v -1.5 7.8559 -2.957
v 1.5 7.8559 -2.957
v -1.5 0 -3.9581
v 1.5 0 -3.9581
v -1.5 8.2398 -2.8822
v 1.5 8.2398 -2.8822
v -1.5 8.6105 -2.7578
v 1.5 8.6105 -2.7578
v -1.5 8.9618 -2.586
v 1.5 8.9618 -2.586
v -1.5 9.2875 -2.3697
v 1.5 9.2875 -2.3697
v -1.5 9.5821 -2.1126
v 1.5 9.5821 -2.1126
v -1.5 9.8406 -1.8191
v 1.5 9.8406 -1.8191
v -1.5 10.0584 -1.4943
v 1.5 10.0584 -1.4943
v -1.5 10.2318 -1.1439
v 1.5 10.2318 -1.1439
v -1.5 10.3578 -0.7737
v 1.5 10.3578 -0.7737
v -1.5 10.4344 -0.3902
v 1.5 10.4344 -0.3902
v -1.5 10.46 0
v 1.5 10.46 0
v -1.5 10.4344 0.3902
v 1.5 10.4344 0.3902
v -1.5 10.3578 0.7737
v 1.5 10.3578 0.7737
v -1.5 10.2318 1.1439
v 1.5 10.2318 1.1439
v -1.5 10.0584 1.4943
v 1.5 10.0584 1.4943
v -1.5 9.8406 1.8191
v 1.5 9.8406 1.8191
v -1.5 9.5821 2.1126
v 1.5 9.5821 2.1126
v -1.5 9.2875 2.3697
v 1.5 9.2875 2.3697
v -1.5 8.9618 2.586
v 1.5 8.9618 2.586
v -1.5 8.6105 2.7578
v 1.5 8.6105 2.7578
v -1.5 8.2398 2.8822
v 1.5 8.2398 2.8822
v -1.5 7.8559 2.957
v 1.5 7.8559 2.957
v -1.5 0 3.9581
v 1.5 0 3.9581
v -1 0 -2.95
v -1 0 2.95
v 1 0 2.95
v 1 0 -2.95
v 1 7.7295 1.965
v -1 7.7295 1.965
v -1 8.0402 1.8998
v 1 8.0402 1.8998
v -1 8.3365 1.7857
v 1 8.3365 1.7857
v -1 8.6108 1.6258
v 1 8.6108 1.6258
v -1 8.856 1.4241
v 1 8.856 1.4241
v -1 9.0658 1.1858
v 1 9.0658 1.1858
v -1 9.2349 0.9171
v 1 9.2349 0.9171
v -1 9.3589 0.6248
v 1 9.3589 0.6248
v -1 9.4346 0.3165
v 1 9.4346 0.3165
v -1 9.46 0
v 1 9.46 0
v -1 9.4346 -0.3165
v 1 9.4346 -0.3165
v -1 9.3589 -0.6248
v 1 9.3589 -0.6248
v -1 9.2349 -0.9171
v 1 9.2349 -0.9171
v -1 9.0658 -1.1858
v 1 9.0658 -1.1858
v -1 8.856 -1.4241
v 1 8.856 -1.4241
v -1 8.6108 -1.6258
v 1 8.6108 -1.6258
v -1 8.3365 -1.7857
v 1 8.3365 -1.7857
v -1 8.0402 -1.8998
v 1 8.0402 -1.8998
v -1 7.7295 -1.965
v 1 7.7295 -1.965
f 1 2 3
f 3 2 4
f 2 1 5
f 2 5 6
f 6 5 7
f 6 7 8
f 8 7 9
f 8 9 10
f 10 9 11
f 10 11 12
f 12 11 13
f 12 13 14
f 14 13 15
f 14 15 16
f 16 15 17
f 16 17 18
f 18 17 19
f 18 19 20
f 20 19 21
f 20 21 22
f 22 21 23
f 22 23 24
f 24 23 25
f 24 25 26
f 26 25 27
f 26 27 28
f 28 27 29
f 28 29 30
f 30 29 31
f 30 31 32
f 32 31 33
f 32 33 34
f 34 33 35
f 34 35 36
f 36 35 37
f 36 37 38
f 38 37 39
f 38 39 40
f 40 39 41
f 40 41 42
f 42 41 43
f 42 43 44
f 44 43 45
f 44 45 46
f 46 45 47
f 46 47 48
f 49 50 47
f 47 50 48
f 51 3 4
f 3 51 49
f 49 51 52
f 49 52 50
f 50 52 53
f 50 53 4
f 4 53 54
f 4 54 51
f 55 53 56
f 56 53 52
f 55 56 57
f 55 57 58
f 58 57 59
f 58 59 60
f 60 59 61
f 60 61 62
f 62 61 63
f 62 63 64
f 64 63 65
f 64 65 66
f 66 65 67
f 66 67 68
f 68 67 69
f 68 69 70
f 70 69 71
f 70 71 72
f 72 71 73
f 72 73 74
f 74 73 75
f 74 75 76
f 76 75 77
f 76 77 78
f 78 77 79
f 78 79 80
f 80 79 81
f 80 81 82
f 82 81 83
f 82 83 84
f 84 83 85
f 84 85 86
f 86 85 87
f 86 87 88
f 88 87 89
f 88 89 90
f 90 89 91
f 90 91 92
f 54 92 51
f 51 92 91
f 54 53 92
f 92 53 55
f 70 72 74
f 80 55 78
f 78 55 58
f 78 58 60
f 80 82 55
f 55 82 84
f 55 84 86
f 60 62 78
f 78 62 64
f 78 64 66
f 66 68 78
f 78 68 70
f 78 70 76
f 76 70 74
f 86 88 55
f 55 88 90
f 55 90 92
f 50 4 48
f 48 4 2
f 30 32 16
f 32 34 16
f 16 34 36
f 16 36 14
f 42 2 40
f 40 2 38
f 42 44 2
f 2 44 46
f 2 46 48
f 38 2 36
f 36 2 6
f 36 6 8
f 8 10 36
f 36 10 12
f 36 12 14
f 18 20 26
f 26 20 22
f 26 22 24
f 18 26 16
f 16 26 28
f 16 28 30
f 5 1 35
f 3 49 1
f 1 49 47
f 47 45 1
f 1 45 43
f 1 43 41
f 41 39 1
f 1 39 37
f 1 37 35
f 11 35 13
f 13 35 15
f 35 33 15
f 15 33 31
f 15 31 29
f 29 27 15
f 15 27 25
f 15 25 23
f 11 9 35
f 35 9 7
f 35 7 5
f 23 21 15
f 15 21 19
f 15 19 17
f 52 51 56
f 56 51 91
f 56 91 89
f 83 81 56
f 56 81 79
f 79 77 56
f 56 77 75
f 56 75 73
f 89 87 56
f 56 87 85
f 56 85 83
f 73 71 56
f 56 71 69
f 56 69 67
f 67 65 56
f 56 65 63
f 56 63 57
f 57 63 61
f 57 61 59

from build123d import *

# Parameters (mm, degrees)
BOSS_EXTRUDE1_DEPTH = 1
BOSS_EXTRUDE2_START = 0.5
BOSS_EXTRUDE2_DEPTH = 0.5
BOSS_EXTRUDE6_DEPTH = 0.5


with BuildPart() as part:
    # Sketch1 → Boss-Extrude1 (new, symmetric)
    with BuildSketch(Plane(origin=(0, 0, 0), x_dir=(0, 0, -1), z_dir=(1, 0, 0))):
        with BuildLine():
            Line((2.95, 0), (1.965, 7.729516129))
            ThreePointArc((1.965, 7.729516129), (0, 9.46), (-1.965, 7.729516129))
            Line((-1.965, 7.729516129), (-2.95, 0))
            Line((-2.95, 0), (-3.958086961, 0))
            Line((-3.958086961, 0), (-2.956977914, 7.855927438))
            ThreePointArc((-2.956977914, 7.855927438), (0, 10.46), (2.956977914, 7.855927438))
            Line((2.956977914, 7.855927438), (3.958086961, 0))
            Line((3.958086961, 0), (2.95, 0))
        make_face()
    extrude(amount=BOSS_EXTRUDE1_DEPTH, both=True)

    # Sketch2 → Boss-Extrude2 (add)
    with BuildSketch(Plane(origin=(1, 0, 0), x_dir=(0, 0, -1), z_dir=(1, 0, 0)).offset(BOSS_EXTRUDE2_START)):
        with BuildLine():
            Line((2.95, 0), (3.958086961, 0))
            Line((3.958086961, 0), (2.956977914, 7.855927438))
            ThreePointArc((2.956977914, 7.855927438), (0, 10.46), (-2.956977914, 7.855927438))
            Line((-2.956977914, 7.855927438), (-3.958086961, 0))
            Line((-3.958086961, 0), (-2.95, 0))
            Line((-2.95, 0), (2.95, 0))
        make_face()
    extrude(amount=-BOSS_EXTRUDE2_DEPTH)

    # Sketch3 → Boss-Extrude6 (add)
    with BuildSketch(Plane.ZY.offset(1)):
        with BuildLine():
            Line((-3.958086961, 0), (3.958086961, 0))
            Line((3.958086961, 0), (2.956977914, 7.855927438))
            ThreePointArc((2.956977914, 7.855927438), (0, 10.46), (-2.956977914, 7.855927438))
            Line((-2.956977914, 7.855927438), (-3.958086961, 0))
        make_face()
    extrude(amount=BOSS_EXTRUDE6_DEPTH)


solid = part.part
